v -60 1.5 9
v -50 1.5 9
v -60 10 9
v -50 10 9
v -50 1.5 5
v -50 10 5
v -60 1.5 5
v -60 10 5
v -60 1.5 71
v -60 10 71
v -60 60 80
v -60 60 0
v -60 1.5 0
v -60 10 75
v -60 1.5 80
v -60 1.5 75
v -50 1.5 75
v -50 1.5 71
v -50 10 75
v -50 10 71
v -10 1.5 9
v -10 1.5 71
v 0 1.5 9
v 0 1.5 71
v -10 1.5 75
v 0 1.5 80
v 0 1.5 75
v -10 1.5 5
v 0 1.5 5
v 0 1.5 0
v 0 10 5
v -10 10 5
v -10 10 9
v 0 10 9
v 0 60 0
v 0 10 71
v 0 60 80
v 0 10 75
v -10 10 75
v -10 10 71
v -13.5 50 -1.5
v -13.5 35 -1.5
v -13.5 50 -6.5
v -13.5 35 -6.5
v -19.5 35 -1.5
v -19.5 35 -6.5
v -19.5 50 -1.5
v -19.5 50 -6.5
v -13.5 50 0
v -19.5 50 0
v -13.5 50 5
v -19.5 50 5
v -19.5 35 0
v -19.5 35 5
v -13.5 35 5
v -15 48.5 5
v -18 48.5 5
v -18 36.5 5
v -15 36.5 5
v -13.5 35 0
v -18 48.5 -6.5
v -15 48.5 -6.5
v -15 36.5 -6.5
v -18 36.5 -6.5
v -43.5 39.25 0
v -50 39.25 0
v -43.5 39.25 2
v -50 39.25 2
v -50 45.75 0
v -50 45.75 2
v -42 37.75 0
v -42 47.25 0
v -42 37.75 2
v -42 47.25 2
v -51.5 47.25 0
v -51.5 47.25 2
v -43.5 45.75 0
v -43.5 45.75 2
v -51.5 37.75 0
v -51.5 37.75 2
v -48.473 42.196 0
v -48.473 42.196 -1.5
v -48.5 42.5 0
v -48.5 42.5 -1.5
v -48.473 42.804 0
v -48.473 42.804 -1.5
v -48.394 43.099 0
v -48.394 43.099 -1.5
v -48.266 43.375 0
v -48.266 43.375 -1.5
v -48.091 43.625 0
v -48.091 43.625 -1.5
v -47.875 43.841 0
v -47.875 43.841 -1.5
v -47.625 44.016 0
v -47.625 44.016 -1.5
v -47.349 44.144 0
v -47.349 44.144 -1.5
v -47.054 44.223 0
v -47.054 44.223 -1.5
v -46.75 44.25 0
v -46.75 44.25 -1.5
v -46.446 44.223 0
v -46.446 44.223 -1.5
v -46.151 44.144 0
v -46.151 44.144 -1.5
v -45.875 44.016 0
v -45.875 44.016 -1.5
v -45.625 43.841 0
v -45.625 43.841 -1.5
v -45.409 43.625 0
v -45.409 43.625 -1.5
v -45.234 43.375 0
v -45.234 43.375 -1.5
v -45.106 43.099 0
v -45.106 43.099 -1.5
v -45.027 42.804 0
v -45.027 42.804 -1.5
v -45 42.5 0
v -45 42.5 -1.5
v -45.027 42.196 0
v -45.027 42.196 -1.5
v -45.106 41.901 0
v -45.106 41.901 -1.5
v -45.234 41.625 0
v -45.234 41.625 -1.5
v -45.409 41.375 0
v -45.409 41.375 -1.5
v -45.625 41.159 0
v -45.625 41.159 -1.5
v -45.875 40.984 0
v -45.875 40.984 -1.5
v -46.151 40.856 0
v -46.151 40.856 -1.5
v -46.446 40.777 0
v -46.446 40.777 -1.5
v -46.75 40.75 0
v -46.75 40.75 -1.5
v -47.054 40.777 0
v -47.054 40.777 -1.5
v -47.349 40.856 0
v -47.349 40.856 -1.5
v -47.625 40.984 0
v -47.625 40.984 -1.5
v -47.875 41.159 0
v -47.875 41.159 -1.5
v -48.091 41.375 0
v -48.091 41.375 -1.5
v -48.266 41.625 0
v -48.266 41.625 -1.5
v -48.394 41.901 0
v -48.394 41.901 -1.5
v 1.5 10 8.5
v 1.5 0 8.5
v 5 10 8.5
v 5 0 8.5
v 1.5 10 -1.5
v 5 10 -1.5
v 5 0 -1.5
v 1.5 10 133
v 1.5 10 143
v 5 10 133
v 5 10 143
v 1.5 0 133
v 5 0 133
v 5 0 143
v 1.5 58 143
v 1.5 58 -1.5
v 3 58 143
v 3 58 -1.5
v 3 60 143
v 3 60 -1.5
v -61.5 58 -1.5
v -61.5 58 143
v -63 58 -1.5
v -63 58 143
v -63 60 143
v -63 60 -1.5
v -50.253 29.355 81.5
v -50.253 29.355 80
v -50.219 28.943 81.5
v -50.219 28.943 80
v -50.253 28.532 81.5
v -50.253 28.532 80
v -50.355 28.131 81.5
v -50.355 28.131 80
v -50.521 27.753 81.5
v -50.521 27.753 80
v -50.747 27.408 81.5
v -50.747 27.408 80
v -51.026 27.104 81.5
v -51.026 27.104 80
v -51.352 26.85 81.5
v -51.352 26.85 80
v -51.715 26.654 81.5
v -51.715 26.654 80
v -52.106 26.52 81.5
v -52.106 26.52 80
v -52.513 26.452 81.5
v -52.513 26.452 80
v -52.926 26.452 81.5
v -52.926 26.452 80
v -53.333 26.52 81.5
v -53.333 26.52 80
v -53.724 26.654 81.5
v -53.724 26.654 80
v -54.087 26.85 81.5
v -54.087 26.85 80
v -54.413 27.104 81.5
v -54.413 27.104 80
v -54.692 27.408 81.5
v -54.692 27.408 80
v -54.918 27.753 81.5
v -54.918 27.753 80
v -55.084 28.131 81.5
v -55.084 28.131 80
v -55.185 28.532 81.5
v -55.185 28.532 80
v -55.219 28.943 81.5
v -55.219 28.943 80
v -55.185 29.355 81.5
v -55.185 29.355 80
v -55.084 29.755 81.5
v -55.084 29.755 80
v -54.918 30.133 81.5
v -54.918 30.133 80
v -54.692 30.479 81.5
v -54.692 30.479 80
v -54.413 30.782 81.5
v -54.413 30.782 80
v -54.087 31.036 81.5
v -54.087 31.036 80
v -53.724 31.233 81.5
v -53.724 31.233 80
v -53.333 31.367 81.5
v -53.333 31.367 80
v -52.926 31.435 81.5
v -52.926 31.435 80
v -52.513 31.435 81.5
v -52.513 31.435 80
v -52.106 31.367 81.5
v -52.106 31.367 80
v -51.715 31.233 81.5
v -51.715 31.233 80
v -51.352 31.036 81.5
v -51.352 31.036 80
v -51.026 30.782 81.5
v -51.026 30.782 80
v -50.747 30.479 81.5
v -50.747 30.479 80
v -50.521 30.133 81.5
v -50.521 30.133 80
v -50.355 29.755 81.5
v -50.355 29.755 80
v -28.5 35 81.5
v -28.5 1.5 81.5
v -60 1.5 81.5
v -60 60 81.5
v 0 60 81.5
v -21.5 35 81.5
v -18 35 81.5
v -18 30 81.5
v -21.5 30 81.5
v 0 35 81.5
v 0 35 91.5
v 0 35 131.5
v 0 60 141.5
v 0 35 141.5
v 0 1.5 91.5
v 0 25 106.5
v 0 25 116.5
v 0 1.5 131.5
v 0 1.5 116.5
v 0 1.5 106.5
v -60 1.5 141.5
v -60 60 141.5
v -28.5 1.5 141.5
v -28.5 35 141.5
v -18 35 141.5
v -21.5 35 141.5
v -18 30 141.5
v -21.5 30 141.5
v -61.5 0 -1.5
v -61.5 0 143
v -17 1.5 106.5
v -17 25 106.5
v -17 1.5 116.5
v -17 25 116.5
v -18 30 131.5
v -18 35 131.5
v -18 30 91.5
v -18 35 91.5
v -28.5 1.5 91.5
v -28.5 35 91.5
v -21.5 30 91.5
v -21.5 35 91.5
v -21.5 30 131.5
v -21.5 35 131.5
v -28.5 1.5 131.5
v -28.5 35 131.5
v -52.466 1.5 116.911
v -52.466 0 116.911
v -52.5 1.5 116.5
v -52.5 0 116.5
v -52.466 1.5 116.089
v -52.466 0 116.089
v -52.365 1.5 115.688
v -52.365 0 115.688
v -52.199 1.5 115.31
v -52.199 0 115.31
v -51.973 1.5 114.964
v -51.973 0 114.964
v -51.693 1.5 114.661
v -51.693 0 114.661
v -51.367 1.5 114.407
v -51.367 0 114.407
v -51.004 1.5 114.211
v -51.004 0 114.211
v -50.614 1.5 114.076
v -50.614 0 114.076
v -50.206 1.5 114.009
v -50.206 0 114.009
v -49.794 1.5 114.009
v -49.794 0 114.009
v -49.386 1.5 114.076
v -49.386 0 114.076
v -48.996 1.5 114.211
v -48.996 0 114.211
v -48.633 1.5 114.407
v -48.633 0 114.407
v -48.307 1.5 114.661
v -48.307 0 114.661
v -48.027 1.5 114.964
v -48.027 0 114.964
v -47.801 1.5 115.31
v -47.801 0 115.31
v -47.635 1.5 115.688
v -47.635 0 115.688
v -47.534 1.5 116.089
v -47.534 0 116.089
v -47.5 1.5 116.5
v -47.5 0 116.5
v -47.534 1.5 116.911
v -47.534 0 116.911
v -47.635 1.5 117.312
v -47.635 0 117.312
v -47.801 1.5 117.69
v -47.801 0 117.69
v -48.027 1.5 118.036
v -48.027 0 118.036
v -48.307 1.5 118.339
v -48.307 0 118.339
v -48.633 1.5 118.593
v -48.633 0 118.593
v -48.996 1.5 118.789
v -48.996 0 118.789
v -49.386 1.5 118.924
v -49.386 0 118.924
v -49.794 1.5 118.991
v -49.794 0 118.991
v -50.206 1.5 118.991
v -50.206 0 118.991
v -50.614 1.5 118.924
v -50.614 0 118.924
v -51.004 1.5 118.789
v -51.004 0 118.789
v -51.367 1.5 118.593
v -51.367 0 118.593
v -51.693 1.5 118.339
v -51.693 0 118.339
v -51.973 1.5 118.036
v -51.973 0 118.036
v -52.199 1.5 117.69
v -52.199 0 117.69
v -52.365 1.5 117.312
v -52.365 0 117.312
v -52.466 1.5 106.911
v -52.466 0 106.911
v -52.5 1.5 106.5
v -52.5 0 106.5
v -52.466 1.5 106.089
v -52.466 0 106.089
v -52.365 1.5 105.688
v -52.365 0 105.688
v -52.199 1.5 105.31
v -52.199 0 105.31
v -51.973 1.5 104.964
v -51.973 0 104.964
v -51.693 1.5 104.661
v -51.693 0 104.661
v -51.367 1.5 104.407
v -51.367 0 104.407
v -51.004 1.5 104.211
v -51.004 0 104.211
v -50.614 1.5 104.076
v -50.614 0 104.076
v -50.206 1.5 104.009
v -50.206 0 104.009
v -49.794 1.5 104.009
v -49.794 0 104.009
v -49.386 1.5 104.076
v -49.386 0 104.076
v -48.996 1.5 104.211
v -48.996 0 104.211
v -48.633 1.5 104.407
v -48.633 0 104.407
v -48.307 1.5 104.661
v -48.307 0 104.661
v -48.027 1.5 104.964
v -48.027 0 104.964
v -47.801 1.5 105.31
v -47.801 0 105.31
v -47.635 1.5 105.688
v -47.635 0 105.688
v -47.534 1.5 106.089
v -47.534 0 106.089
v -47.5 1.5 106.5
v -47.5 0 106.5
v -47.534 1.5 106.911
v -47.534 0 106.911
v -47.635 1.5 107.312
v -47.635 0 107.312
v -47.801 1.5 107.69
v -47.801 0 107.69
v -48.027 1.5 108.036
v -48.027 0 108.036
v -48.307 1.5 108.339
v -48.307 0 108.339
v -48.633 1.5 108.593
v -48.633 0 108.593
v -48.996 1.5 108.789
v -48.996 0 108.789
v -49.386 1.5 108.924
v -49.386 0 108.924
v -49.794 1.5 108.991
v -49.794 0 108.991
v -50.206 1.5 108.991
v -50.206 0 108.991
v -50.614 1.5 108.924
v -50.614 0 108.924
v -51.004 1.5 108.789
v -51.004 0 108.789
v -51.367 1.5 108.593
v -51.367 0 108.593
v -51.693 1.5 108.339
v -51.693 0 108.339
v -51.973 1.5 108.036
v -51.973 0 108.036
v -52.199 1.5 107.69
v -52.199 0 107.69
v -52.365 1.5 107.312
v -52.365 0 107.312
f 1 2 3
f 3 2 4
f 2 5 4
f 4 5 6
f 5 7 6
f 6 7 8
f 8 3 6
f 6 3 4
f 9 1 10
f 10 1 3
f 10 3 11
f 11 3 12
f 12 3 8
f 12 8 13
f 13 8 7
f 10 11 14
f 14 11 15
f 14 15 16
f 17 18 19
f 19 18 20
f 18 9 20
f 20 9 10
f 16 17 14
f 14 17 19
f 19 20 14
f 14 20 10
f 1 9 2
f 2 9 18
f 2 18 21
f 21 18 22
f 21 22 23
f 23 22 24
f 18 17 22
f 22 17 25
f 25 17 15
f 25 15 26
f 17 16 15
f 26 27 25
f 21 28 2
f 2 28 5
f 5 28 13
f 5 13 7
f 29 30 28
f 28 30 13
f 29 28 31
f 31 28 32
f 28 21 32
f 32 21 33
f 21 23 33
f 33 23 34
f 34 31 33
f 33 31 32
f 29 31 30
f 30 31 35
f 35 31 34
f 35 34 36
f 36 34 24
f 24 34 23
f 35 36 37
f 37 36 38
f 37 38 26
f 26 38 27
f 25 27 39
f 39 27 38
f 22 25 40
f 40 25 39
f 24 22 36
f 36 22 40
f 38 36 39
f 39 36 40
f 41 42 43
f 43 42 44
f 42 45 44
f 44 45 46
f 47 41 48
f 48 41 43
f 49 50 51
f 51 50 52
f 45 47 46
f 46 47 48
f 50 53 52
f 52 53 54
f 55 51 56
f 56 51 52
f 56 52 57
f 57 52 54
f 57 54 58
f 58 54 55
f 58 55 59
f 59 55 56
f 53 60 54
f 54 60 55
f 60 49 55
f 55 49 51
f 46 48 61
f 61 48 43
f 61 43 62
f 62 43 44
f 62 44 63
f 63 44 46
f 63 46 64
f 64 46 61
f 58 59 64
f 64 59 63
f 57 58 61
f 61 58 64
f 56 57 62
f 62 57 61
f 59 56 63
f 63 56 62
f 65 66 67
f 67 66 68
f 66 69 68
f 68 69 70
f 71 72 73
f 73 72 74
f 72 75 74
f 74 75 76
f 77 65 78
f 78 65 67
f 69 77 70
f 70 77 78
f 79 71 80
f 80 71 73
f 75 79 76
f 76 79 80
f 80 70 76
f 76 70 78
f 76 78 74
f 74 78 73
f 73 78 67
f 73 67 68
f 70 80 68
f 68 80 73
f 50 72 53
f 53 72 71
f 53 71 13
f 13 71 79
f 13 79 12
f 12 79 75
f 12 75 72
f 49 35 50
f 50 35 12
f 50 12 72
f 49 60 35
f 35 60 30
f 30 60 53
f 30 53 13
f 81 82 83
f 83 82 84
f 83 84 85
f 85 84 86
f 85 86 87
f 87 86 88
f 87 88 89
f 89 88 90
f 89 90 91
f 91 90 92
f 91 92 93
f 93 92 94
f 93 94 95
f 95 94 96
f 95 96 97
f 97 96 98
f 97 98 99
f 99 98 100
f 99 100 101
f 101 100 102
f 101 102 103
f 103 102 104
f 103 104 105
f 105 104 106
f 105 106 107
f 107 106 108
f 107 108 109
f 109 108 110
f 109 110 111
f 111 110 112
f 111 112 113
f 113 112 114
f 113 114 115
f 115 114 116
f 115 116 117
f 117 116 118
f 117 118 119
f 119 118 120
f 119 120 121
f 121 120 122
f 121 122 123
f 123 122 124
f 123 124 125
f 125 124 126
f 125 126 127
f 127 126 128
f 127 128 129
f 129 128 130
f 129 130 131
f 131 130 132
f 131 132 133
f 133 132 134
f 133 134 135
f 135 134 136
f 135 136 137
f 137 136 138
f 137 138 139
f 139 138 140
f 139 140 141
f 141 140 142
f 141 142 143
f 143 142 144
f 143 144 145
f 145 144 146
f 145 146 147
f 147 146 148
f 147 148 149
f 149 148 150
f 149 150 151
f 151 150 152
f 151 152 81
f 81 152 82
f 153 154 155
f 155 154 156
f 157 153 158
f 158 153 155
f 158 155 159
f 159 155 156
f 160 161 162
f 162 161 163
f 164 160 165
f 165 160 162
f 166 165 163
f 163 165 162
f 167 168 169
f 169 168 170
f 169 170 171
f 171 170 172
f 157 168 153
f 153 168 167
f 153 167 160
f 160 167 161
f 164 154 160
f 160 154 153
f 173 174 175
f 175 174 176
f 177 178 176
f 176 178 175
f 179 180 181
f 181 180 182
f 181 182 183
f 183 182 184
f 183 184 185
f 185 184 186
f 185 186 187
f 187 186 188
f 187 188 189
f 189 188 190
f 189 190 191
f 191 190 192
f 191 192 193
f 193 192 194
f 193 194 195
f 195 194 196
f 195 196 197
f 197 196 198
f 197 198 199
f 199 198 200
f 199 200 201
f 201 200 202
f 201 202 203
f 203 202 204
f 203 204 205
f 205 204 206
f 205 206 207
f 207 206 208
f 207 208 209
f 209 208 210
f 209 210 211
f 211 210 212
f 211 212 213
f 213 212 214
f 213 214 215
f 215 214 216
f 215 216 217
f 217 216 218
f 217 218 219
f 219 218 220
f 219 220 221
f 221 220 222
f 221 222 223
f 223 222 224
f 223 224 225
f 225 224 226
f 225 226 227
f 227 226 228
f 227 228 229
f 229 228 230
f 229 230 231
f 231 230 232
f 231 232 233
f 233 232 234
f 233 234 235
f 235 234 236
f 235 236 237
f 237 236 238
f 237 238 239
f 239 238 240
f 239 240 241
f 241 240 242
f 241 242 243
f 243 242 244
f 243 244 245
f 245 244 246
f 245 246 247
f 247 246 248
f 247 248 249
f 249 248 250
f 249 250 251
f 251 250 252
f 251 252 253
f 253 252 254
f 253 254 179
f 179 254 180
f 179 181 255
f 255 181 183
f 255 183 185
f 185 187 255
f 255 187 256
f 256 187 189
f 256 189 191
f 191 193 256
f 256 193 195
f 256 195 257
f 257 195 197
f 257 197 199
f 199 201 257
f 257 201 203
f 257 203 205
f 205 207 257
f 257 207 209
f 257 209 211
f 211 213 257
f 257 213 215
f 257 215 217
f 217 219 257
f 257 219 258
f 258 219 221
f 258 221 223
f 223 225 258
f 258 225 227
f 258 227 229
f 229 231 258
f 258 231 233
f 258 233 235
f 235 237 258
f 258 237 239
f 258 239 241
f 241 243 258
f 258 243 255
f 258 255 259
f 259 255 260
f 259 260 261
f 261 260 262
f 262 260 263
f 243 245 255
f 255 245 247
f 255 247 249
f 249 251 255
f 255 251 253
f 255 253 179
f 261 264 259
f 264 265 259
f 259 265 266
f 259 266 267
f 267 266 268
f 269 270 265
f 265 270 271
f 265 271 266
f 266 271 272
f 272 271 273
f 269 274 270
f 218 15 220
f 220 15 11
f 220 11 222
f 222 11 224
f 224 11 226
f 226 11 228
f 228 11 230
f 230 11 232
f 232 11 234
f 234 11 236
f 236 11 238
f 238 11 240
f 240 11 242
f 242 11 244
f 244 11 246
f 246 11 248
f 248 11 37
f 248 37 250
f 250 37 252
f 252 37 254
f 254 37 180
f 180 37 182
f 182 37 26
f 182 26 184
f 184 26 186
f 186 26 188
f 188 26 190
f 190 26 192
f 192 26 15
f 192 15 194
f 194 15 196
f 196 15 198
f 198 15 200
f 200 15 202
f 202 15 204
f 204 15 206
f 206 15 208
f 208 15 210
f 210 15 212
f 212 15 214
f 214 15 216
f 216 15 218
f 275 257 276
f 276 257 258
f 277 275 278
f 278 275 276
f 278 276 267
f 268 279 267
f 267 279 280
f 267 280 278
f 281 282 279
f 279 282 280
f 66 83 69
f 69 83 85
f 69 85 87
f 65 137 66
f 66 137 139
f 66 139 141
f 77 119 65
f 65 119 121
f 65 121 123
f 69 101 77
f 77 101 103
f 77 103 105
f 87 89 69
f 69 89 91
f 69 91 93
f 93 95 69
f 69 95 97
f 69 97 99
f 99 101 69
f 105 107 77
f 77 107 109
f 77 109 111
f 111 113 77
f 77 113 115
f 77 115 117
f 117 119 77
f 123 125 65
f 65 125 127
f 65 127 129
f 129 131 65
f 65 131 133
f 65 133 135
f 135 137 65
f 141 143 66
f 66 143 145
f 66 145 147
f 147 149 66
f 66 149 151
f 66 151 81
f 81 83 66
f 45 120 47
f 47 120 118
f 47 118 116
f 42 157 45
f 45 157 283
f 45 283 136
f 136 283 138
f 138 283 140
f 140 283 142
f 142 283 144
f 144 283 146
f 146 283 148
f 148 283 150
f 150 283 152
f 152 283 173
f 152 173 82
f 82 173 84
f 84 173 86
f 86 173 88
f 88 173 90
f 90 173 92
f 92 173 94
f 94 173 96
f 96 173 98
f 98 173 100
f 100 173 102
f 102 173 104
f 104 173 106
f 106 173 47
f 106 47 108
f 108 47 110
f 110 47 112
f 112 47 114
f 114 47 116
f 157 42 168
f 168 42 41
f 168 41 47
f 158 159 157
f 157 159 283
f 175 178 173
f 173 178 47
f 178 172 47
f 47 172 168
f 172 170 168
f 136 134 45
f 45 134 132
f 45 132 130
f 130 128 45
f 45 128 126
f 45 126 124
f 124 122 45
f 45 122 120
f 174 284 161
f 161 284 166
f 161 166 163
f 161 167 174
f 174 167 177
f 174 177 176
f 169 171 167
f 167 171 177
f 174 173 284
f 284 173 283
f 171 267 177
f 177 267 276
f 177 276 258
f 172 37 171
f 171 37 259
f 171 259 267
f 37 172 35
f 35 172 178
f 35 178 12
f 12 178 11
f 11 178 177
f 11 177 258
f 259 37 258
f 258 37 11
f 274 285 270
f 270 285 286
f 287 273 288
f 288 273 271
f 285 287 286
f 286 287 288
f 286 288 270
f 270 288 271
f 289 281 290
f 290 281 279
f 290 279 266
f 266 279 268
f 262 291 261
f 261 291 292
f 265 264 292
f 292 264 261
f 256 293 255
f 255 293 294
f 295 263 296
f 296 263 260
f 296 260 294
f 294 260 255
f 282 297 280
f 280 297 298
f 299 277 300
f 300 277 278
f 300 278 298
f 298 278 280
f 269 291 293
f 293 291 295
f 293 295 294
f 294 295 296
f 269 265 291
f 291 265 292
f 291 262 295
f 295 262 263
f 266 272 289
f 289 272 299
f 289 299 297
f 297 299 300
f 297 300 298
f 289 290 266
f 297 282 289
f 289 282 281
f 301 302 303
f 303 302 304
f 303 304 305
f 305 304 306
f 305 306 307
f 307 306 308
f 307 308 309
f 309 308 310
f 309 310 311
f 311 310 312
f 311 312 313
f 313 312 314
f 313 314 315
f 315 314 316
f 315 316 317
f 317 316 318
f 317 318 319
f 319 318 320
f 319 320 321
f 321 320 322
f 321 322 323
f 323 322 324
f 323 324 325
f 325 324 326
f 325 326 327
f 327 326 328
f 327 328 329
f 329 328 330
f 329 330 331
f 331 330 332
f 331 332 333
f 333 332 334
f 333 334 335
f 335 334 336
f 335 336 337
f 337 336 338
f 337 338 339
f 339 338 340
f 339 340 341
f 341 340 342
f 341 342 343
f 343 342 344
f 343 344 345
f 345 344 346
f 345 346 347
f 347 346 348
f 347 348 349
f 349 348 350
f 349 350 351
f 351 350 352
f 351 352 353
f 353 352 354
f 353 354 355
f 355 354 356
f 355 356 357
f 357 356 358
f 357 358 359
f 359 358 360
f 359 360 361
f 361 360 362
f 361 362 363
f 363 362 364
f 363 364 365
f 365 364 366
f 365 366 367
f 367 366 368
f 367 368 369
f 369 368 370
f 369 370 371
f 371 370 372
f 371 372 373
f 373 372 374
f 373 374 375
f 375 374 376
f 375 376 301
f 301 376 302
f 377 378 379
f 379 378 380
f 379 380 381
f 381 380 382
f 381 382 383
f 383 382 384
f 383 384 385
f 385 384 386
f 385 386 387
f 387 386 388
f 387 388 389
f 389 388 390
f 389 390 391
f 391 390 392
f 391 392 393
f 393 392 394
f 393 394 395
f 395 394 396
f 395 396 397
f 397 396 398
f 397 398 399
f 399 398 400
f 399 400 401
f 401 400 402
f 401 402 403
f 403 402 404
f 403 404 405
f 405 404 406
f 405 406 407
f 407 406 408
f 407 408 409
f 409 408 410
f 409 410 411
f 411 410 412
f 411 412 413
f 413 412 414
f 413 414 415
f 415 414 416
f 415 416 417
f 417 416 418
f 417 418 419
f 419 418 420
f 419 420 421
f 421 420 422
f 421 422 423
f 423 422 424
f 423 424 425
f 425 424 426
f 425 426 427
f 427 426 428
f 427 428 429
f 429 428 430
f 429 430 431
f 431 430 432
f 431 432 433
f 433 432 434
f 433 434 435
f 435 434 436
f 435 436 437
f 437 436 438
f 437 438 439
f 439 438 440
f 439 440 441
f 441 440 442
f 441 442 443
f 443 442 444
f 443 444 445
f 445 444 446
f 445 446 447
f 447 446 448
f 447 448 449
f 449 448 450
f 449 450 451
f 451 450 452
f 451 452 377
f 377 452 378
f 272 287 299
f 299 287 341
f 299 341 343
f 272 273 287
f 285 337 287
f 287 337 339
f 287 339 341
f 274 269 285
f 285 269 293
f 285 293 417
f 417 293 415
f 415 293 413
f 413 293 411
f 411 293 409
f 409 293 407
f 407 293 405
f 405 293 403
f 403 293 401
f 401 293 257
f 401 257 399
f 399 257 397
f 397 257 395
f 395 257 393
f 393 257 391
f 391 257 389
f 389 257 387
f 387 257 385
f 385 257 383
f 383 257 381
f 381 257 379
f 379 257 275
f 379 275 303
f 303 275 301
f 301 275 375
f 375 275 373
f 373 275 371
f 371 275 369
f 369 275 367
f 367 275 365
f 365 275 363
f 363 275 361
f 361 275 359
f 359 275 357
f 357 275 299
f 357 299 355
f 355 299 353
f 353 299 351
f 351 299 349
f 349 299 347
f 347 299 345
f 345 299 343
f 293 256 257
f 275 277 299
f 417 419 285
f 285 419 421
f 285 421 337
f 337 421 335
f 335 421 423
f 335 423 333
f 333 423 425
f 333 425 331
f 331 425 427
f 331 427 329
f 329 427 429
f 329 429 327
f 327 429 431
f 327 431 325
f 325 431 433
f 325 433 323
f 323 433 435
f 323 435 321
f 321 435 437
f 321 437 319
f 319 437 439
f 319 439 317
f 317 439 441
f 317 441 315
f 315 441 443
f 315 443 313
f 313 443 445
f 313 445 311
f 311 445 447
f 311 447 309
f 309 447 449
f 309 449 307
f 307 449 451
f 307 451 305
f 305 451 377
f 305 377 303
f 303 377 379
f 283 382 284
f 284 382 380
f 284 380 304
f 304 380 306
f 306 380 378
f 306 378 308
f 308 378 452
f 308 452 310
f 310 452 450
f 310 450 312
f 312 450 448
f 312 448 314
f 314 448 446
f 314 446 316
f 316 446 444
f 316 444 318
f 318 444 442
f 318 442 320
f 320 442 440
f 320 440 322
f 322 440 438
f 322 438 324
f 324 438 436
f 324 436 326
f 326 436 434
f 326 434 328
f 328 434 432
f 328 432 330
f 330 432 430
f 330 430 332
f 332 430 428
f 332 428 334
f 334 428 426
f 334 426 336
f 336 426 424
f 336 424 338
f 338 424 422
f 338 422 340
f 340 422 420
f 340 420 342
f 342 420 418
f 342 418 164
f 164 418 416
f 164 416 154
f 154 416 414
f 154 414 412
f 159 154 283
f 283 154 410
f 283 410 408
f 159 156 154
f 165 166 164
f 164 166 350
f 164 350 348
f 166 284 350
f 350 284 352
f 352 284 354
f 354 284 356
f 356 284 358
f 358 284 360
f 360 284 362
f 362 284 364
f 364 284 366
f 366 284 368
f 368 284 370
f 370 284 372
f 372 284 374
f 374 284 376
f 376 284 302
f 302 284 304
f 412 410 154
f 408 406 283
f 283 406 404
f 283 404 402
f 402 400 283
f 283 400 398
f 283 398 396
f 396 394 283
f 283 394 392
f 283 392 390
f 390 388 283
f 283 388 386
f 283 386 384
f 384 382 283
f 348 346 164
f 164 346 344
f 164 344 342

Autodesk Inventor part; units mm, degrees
ref_plane "YZ Plane" through (0, 0, 0) normal (1, 0, 0) x (0, 1, 0)
ref_plane "XZ Plane" through (0, 0, 0) normal (0, 1, 0) x (-1, 0, 0)
ref_plane "XY Plane" through (0, 0, 0) normal (0, 0, 1) x (1, 0, 0)
sketch "Skizze1" plane through (0, 0, 0) normal (0, 1, 0) x (-1, 0, 0)
  line L0 (0, 0) -> (60, 0)
  line L1 (60, 0) -> (60, 81.5)
  line L2 (60, 81.5) -> (60, 141.5)
  line L3 (60, 141.5) -> (0, 141.5)
  line L4 (0, 141.5) -> (0, 81.5)
  line L5 (0, 81.5) -> (60, 81.5)
  line L6 (0, 81.5) -> (0, 0)
  line L7 (60, 0) -> (0, 0)
  circle A0 centre (50, 116.5) radius 2.5
  circle A1 centre (50, 106.5) radius 2.5
  line L8 (0, 0) -> (-1.5, 0)
  line L9 (-1.5, 0) -> (-1.5, 141.5)
  line L10 (-1.5, 141.5) -> (0, 141.5)
  line L11 (0, 141.5) -> (0, 0)
  line L12 (-1.5, 141.5) -> (61.5, 141.5)
  line L13 (61.5, 141.5) -> (61.5, 143)
  line L14 (61.5, 143) -> (-1.5, 143)
  line L15 (-1.5, 143) -> (-1.5, 141.5)
  line L16 (61.5, 141.5) -> (60, 141.5)
  line L17 (60, 141.5) -> (60, 0)
  line L18 (60, 0) -> (61.5, 0)
  line L19 (61.5, 0) -> (61.5, 141.5)
  line L20 (61.5, 0) -> (-1.5, 0)
  line L21 (-1.5, 0) -> (-1.5, -1.5)
  line L22 (-1.5, -1.5) -> (61.5, -1.5)
  line L23 (61.5, -1.5) -> (61.5, 0)
  line L24 (61.5, 71.5) -> (61.5, 80)
  line L25 (61.5, 80) -> (-1.5, 80)
  line L26 (-1.5, 80) -> (-1.5, 70.75)
  line L27 (0, 141.5) -> (18, 141.5)
  line L28 (18, 141.5) -> (18, 131.5)
  line L29 (18, 131.5) -> (0, 131.5)
  line L30 (0, 131.5) -> (0, 141.5)
  line L31 (18, 131.5) -> (21.5, 131.5)
  line L32 (21.5, 131.5) -> (21.5, 141.5)
  line L33 (21.5, 141.5) -> (18, 141.5)
  line L34 (18, 141.5) -> (18, 131.5)
  line L35 (21.5, 131.5) -> (28.5, 131.5)
  line L36 (28.5, 131.5) -> (28.5, 141.5)
  line L37 (28.5, 141.5) -> (21.5, 141.5)
  line L38 (21.5, 141.5) -> (21.5, 131.5)
  line L39 (0, 81.5) -> (18, 81.5)
  line L40 (18, 81.5) -> (18, 91.5)
  line L41 (18, 91.5) -> (0, 91.5)
  line L42 (0, 91.5) -> (0, 81.5)
  line L43 (18, 81.5) -> (21.5, 81.5)
  line L44 (21.5, 81.5) -> (21.5, 91.5)
  line L45 (21.5, 91.5) -> (18, 91.5)
  line L46 (18, 91.5) -> (18, 81.5)
  line L47 (21.5, 81.5) -> (28.5, 81.5)
  line L48 (28.5, 81.5) -> (28.5, 91.5)
  line L49 (28.5, 91.5) -> (21.5, 91.5)
  line L50 (21.5, 91.5) -> (21.5, 81.5)
  line L51 (0, 116.5) -> (17, 116.5)
  line L52 (17, 116.5) -> (17, 106.5)
  line L53 (17, 106.5) -> (0, 106.5)
  line L54 (0, 106.5) -> (0, 116.5)
  line L55 (0, 75) -> (10, 75)
  line L56 (10, 75) -> (10, 71)
  line L57 (10, 71) -> (0, 71)
  line L58 (0, 71) -> (0, 75)
  line L59 (60, 71) -> (60, 73.5)
  line L60 (60, 5) -> (60, 9)
  line L61 (60, 75) -> (50, 75)
  line L62 (50, 75) -> (50, 71)
  line L63 (50, 71) -> (60, 71)
  line L64 (60, 71) -> (60, 75)
  line L65 (0, 5) -> (10, 5)
  line L66 (10, 5) -> (10, 9)
  line L67 (10, 9) -> (0, 9)
  line L68 (0, 9) -> (0, 5)
  line L69 (60, 5) -> (50, 5)
  line L70 (50, 5) -> (50, 9)
  line L71 (50, 9) -> (60, 9)
  line L72 (60, 9) -> (60, 5)
  point P0 (0, 131.5)
  point P1 (0, 116.5)
  point P2 (0, 106.5)
  point P3 (28.5, 141.5)
  point P4 (60, 80)
  point P5 (0, 80)
  point P6 (21.5, 141.5)
  point P7 (18, 141.5)
  point P8 (0, 71)
  point P9 (0, 9)
  dimension "d0" = 81.5
  dimension "d1" = 60
  dimension "d2" = 60
  dimension "d3" = 5
  dimension "d4" = 10
  dimension "d5" = 5
  dimension "d6" = 10
  dimension "d7" = 25
  dimension "d11" = 1.5
  dimension "d12" = 1.5
  dimension "d13" = 1.5
  dimension "d14" = 1.5
  dimension "d15" = 1.5
  dimension "d16" = 10
  dimension "d17" = 18
  dimension "d18" = 3.5
  dimension "d19" = 7
  dimension "d20" = 10
  dimension "d21" = 17
  dimension "d59" = 0
  dimension "d60" = 25
  dimension "d61" = 10
  dimension "d92" = 4
  dimension "d93" = 10
  dimension "d94" = 5
  dimension "d100" = 10
  dimension "d101" = 4
  dimension "d102" = 10
  dimension "d103" = 5
  dimension "d104" = 70
  dimension "d105" = 40
  dimension "d115" = 144.5
extrude "Extrusion1" add sketch "Skizze1" along normal blind 1.5 contours L6 L65 L66 L67 L57 L56 L55 L25 L1 L61 L62 L63 L71 L70 L69 L0 | L6 L67 L66 L65 | L69 L70 L71 L1 | L6 L55 L56 L57 | L63 L62 L61 L1 | L2 L5 L48 L49 L45 L41 L4 L53 L52 L51 L29 L31 L35 L36 L3
extrude "Extrusion2" add sketch "Skizze1" along normal blind 30 contours L3 L32 L31 L28 | L40 L45 L44 L5
extrude "Extrusion3" add sketch "Skizze1" along normal blind 35 contours L36 L35 L32 L3 | L5 L44 L49 L48
extrude "Extrusion4" add sketch "Skizze1" along normal blind 35 contours L3 L28 L29 L4 | L4 L41 L40 L5
extrude "Extrusion5" add sketch "Skizze1" along normal blind 25 contours L51 L52 L53 L4
extrude "Extrusion6" add sketch "Skizze1" along normal blind 60 contours L8 L9 L25 L6 | L0 L18 L23 L22 L21 L8 | L1 L25 L19 L18 | L9 L10 L4 L6 L25 | L25 L1 L2 L12 L19 | L15 L14 L13 L12 L3 L10 | L6 L5 L1 L25
sketch "Skizze3" plane through (0, 1.5, 80) normal (0, 0, -1) x (-1, 0, 0)
  point P0 (0, -1.5)
  point P1 (52.7194, 27.4431)
hole "Bohrung1" at (-52.7194, 28.9431, 80) direction (0, 0, 1) diameter 5 depth 2
sketch "Skizze4" plane through (-61.5, 0, -1.5) normal (-1, 0, 0) x (0, 0, 1)
  line L0 (0, 60) -> (144.5, 60) projected
  line L1 (0, 0) -> (0, 60) projected
  line L2 (144.5, 60) -> (0, 60)
  line L3 (0, 60) -> (0, 58)
  line L4 (0, 58) -> (144.5, 58)
  line L5 (144.5, 58) -> (144.5, 60)
  point P0 (1.5, 0)
  dimension "d41" = 2
extrude "Extrusion7" add sketch "Skizze4" along normal blind 1.5
sketch "Skizze5" plane through (1.5, 0, 143) normal (1, 0, 0) x (0, 0, -1)
  line L0 (0, 58) -> (0, 60) projected
  line L1 (0, 58) -> (144.5, 58) projected
  line L2 (0, 60) -> (144.5, 60)
  line L3 (144.5, 60) -> (144.5, 58)
  line L4 (144.5, 58) -> (0, 58)
  line L5 (0, 58) -> (0, 60)
  line L6 (144.5, 0) -> (144.5, 58) projected
  line L7 (0, 0) -> (144.5, 0)
  line L8 (144.5, 0) -> (144.5, 2)
  line L9 (0, 2) -> (0, 0)
  line L10 (0, 0) -> (0, 60) projected
  line L11 (0, 0) -> (10, 0)
  line L12 (10, 0) -> (10, 10)
  line L13 (10, 10) -> (0, 10)
  line L14 (0, 10) -> (0, 0)
  line L15 (144.5, 0) -> (134.5, 0)
  line L16 (134.5, 0) -> (134.5, 10)
  line L17 (134.5, 10) -> (144.5, 10)
  line L18 (144.5, 10) -> (144.5, 0)
  point P0 (143, 0)
  point P1 (134.5, 0)
  point P2 (0, 10)
  dimension "d44" = 2
  dimension "d48" = 10
  dimension "d49" = 10
  dimension "d50" = 10
  dimension "d51" = 10
extrude "Extrusion8" add sketch "Skizze5" along normal blind 1.5 contours L0 L2 L3 L1
extrude "Extrusion9" add sketch "Skizze5" along normal blind 3.5 contours L13 L12 L7 L9 L10 | L6 L7 L16 L17
sketch "Skizze6" plane through (-61.5, 0, -1.5) normal (0, 0, -1) x (-1, 0, 0)
  line L0 (1.5, 60) -> (1.5, 58) projected
  line L1 (-64.5, 58) -> (-64.5, 60) projected
  line L2 (0, 58) -> (1.5, 58) projected
  line L3 (1.5, 60) -> (-64.5, 60) projected
  line L4 (0, 0) -> (0, 58) projected
  line L5 (-63, 10) -> (-63, 58) projected
  line L6 (-66.5, 0) -> (-66.5, 10) projected
  point P0 (-61.5, 0)
  dimension "d54" = 66
  dimension "d55" = 2
  dimension "d56" = 63
  dimension "d57" = 3.5
sketch "Skizze7" plane through (-61.5, 0, -1.5) normal (0, 0, -1) x (-1, 0, 0)
  line L0 (-43.5, 48.5) -> (-46.5, 48.5)
  line L1 (-46.5, 48.5) -> (-46.5, 36.5)
  line L2 (-46.5, 36.5) -> (-43.5, 36.5)
  line L3 (-43.5, 36.5) -> (-43.5, 48.5)
  line L4 (-42, 50) -> (-48, 50)
  line L5 (-48, 50) -> (-48, 35)
  line L6 (-48, 35) -> (-42, 35)
  line L7 (-42, 35) -> (-42, 50)
  line L8 (-63, 10) -> (-63, 58) projected
  line L9 (1.5, 60) -> (-64.5, 60) projected
  circle A0 centre (-14.75, 42.5) radius 1.75
  line L10 (-11.5, 45.75) -> (-18, 45.75)
  line L11 (-18, 45.75) -> (-18, 39.25)
  line L12 (-18, 39.25) -> (-11.5, 39.25)
  line L13 (-11.5, 39.25) -> (-11.5, 45.75)
  line L14 (-10, 47.25) -> (-19.5, 47.25)
  line L15 (-19.5, 47.25) -> (-19.5, 37.75)
  line L16 (-19.5, 37.75) -> (-10, 37.75)
  line L17 (-10, 37.75) -> (-10, 47.25)
  line L18 (0, 0) -> (0, 58) projected
  line L19 (-61.5, 1.5) -> (-1.5, 1.5) projected
  point P0 (-61.5, 0)
  dimension "d62" = 3
  dimension "d63" = 12
  dimension "d64" = 1.5
  dimension "d65" = 1.5
  dimension "d66" = 1.5
  dimension "d67" = 1.5
  dimension "d68" = 15
  dimension "d69" = 10
  dimension "d70" = 3.5
  dimension "d71" = 17.5
  dimension "d72" = 3.25
  dimension "d73" = 3.25
  dimension "d74" = 6.5
  dimension "d75" = 6.5
  dimension "d76" = 1.5
  dimension "d77" = 1.5
  dimension "d78" = 1.5
  dimension "d79" = 1.5
  dimension "d80" = 10
  dimension "d91" = 33.5
  dimension "d108" = 58.5
extrude "Extrusion10" cut sketch "Skizze7" against normal blind 1.5 contours A0
extrude "Extrusion11" add sketch "Skizze7" against normal blind 3.5 contours L17 L16 L15 L14
extrude "Extrusion12" cut sketch "Skizze7" against normal blind 1.5 contours L3 L2 L1 L0
extrude "Extrusion13" add sketch "Skizze7" along normal blind 5 and the other way blind 6.5 contours L7 L6 L5 L4
extrude "Extrusion14" add sketch "Skizze1" along normal blind 10 contours L6 L55 L56 L57
extrude "Extrusion15" add sketch "Skizze1" along normal blind 10 contours L6 L67 L66 L65
extrude "Extrusion16" add sketch "Skizze1" along normal blind 10 contours L63 L62 L61 L1
extrude "Extrusion17" add sketch "Skizze1" along normal blind 10 contours L69 L70 L71 L1
properties part number "Box-Pumpe.v2"
